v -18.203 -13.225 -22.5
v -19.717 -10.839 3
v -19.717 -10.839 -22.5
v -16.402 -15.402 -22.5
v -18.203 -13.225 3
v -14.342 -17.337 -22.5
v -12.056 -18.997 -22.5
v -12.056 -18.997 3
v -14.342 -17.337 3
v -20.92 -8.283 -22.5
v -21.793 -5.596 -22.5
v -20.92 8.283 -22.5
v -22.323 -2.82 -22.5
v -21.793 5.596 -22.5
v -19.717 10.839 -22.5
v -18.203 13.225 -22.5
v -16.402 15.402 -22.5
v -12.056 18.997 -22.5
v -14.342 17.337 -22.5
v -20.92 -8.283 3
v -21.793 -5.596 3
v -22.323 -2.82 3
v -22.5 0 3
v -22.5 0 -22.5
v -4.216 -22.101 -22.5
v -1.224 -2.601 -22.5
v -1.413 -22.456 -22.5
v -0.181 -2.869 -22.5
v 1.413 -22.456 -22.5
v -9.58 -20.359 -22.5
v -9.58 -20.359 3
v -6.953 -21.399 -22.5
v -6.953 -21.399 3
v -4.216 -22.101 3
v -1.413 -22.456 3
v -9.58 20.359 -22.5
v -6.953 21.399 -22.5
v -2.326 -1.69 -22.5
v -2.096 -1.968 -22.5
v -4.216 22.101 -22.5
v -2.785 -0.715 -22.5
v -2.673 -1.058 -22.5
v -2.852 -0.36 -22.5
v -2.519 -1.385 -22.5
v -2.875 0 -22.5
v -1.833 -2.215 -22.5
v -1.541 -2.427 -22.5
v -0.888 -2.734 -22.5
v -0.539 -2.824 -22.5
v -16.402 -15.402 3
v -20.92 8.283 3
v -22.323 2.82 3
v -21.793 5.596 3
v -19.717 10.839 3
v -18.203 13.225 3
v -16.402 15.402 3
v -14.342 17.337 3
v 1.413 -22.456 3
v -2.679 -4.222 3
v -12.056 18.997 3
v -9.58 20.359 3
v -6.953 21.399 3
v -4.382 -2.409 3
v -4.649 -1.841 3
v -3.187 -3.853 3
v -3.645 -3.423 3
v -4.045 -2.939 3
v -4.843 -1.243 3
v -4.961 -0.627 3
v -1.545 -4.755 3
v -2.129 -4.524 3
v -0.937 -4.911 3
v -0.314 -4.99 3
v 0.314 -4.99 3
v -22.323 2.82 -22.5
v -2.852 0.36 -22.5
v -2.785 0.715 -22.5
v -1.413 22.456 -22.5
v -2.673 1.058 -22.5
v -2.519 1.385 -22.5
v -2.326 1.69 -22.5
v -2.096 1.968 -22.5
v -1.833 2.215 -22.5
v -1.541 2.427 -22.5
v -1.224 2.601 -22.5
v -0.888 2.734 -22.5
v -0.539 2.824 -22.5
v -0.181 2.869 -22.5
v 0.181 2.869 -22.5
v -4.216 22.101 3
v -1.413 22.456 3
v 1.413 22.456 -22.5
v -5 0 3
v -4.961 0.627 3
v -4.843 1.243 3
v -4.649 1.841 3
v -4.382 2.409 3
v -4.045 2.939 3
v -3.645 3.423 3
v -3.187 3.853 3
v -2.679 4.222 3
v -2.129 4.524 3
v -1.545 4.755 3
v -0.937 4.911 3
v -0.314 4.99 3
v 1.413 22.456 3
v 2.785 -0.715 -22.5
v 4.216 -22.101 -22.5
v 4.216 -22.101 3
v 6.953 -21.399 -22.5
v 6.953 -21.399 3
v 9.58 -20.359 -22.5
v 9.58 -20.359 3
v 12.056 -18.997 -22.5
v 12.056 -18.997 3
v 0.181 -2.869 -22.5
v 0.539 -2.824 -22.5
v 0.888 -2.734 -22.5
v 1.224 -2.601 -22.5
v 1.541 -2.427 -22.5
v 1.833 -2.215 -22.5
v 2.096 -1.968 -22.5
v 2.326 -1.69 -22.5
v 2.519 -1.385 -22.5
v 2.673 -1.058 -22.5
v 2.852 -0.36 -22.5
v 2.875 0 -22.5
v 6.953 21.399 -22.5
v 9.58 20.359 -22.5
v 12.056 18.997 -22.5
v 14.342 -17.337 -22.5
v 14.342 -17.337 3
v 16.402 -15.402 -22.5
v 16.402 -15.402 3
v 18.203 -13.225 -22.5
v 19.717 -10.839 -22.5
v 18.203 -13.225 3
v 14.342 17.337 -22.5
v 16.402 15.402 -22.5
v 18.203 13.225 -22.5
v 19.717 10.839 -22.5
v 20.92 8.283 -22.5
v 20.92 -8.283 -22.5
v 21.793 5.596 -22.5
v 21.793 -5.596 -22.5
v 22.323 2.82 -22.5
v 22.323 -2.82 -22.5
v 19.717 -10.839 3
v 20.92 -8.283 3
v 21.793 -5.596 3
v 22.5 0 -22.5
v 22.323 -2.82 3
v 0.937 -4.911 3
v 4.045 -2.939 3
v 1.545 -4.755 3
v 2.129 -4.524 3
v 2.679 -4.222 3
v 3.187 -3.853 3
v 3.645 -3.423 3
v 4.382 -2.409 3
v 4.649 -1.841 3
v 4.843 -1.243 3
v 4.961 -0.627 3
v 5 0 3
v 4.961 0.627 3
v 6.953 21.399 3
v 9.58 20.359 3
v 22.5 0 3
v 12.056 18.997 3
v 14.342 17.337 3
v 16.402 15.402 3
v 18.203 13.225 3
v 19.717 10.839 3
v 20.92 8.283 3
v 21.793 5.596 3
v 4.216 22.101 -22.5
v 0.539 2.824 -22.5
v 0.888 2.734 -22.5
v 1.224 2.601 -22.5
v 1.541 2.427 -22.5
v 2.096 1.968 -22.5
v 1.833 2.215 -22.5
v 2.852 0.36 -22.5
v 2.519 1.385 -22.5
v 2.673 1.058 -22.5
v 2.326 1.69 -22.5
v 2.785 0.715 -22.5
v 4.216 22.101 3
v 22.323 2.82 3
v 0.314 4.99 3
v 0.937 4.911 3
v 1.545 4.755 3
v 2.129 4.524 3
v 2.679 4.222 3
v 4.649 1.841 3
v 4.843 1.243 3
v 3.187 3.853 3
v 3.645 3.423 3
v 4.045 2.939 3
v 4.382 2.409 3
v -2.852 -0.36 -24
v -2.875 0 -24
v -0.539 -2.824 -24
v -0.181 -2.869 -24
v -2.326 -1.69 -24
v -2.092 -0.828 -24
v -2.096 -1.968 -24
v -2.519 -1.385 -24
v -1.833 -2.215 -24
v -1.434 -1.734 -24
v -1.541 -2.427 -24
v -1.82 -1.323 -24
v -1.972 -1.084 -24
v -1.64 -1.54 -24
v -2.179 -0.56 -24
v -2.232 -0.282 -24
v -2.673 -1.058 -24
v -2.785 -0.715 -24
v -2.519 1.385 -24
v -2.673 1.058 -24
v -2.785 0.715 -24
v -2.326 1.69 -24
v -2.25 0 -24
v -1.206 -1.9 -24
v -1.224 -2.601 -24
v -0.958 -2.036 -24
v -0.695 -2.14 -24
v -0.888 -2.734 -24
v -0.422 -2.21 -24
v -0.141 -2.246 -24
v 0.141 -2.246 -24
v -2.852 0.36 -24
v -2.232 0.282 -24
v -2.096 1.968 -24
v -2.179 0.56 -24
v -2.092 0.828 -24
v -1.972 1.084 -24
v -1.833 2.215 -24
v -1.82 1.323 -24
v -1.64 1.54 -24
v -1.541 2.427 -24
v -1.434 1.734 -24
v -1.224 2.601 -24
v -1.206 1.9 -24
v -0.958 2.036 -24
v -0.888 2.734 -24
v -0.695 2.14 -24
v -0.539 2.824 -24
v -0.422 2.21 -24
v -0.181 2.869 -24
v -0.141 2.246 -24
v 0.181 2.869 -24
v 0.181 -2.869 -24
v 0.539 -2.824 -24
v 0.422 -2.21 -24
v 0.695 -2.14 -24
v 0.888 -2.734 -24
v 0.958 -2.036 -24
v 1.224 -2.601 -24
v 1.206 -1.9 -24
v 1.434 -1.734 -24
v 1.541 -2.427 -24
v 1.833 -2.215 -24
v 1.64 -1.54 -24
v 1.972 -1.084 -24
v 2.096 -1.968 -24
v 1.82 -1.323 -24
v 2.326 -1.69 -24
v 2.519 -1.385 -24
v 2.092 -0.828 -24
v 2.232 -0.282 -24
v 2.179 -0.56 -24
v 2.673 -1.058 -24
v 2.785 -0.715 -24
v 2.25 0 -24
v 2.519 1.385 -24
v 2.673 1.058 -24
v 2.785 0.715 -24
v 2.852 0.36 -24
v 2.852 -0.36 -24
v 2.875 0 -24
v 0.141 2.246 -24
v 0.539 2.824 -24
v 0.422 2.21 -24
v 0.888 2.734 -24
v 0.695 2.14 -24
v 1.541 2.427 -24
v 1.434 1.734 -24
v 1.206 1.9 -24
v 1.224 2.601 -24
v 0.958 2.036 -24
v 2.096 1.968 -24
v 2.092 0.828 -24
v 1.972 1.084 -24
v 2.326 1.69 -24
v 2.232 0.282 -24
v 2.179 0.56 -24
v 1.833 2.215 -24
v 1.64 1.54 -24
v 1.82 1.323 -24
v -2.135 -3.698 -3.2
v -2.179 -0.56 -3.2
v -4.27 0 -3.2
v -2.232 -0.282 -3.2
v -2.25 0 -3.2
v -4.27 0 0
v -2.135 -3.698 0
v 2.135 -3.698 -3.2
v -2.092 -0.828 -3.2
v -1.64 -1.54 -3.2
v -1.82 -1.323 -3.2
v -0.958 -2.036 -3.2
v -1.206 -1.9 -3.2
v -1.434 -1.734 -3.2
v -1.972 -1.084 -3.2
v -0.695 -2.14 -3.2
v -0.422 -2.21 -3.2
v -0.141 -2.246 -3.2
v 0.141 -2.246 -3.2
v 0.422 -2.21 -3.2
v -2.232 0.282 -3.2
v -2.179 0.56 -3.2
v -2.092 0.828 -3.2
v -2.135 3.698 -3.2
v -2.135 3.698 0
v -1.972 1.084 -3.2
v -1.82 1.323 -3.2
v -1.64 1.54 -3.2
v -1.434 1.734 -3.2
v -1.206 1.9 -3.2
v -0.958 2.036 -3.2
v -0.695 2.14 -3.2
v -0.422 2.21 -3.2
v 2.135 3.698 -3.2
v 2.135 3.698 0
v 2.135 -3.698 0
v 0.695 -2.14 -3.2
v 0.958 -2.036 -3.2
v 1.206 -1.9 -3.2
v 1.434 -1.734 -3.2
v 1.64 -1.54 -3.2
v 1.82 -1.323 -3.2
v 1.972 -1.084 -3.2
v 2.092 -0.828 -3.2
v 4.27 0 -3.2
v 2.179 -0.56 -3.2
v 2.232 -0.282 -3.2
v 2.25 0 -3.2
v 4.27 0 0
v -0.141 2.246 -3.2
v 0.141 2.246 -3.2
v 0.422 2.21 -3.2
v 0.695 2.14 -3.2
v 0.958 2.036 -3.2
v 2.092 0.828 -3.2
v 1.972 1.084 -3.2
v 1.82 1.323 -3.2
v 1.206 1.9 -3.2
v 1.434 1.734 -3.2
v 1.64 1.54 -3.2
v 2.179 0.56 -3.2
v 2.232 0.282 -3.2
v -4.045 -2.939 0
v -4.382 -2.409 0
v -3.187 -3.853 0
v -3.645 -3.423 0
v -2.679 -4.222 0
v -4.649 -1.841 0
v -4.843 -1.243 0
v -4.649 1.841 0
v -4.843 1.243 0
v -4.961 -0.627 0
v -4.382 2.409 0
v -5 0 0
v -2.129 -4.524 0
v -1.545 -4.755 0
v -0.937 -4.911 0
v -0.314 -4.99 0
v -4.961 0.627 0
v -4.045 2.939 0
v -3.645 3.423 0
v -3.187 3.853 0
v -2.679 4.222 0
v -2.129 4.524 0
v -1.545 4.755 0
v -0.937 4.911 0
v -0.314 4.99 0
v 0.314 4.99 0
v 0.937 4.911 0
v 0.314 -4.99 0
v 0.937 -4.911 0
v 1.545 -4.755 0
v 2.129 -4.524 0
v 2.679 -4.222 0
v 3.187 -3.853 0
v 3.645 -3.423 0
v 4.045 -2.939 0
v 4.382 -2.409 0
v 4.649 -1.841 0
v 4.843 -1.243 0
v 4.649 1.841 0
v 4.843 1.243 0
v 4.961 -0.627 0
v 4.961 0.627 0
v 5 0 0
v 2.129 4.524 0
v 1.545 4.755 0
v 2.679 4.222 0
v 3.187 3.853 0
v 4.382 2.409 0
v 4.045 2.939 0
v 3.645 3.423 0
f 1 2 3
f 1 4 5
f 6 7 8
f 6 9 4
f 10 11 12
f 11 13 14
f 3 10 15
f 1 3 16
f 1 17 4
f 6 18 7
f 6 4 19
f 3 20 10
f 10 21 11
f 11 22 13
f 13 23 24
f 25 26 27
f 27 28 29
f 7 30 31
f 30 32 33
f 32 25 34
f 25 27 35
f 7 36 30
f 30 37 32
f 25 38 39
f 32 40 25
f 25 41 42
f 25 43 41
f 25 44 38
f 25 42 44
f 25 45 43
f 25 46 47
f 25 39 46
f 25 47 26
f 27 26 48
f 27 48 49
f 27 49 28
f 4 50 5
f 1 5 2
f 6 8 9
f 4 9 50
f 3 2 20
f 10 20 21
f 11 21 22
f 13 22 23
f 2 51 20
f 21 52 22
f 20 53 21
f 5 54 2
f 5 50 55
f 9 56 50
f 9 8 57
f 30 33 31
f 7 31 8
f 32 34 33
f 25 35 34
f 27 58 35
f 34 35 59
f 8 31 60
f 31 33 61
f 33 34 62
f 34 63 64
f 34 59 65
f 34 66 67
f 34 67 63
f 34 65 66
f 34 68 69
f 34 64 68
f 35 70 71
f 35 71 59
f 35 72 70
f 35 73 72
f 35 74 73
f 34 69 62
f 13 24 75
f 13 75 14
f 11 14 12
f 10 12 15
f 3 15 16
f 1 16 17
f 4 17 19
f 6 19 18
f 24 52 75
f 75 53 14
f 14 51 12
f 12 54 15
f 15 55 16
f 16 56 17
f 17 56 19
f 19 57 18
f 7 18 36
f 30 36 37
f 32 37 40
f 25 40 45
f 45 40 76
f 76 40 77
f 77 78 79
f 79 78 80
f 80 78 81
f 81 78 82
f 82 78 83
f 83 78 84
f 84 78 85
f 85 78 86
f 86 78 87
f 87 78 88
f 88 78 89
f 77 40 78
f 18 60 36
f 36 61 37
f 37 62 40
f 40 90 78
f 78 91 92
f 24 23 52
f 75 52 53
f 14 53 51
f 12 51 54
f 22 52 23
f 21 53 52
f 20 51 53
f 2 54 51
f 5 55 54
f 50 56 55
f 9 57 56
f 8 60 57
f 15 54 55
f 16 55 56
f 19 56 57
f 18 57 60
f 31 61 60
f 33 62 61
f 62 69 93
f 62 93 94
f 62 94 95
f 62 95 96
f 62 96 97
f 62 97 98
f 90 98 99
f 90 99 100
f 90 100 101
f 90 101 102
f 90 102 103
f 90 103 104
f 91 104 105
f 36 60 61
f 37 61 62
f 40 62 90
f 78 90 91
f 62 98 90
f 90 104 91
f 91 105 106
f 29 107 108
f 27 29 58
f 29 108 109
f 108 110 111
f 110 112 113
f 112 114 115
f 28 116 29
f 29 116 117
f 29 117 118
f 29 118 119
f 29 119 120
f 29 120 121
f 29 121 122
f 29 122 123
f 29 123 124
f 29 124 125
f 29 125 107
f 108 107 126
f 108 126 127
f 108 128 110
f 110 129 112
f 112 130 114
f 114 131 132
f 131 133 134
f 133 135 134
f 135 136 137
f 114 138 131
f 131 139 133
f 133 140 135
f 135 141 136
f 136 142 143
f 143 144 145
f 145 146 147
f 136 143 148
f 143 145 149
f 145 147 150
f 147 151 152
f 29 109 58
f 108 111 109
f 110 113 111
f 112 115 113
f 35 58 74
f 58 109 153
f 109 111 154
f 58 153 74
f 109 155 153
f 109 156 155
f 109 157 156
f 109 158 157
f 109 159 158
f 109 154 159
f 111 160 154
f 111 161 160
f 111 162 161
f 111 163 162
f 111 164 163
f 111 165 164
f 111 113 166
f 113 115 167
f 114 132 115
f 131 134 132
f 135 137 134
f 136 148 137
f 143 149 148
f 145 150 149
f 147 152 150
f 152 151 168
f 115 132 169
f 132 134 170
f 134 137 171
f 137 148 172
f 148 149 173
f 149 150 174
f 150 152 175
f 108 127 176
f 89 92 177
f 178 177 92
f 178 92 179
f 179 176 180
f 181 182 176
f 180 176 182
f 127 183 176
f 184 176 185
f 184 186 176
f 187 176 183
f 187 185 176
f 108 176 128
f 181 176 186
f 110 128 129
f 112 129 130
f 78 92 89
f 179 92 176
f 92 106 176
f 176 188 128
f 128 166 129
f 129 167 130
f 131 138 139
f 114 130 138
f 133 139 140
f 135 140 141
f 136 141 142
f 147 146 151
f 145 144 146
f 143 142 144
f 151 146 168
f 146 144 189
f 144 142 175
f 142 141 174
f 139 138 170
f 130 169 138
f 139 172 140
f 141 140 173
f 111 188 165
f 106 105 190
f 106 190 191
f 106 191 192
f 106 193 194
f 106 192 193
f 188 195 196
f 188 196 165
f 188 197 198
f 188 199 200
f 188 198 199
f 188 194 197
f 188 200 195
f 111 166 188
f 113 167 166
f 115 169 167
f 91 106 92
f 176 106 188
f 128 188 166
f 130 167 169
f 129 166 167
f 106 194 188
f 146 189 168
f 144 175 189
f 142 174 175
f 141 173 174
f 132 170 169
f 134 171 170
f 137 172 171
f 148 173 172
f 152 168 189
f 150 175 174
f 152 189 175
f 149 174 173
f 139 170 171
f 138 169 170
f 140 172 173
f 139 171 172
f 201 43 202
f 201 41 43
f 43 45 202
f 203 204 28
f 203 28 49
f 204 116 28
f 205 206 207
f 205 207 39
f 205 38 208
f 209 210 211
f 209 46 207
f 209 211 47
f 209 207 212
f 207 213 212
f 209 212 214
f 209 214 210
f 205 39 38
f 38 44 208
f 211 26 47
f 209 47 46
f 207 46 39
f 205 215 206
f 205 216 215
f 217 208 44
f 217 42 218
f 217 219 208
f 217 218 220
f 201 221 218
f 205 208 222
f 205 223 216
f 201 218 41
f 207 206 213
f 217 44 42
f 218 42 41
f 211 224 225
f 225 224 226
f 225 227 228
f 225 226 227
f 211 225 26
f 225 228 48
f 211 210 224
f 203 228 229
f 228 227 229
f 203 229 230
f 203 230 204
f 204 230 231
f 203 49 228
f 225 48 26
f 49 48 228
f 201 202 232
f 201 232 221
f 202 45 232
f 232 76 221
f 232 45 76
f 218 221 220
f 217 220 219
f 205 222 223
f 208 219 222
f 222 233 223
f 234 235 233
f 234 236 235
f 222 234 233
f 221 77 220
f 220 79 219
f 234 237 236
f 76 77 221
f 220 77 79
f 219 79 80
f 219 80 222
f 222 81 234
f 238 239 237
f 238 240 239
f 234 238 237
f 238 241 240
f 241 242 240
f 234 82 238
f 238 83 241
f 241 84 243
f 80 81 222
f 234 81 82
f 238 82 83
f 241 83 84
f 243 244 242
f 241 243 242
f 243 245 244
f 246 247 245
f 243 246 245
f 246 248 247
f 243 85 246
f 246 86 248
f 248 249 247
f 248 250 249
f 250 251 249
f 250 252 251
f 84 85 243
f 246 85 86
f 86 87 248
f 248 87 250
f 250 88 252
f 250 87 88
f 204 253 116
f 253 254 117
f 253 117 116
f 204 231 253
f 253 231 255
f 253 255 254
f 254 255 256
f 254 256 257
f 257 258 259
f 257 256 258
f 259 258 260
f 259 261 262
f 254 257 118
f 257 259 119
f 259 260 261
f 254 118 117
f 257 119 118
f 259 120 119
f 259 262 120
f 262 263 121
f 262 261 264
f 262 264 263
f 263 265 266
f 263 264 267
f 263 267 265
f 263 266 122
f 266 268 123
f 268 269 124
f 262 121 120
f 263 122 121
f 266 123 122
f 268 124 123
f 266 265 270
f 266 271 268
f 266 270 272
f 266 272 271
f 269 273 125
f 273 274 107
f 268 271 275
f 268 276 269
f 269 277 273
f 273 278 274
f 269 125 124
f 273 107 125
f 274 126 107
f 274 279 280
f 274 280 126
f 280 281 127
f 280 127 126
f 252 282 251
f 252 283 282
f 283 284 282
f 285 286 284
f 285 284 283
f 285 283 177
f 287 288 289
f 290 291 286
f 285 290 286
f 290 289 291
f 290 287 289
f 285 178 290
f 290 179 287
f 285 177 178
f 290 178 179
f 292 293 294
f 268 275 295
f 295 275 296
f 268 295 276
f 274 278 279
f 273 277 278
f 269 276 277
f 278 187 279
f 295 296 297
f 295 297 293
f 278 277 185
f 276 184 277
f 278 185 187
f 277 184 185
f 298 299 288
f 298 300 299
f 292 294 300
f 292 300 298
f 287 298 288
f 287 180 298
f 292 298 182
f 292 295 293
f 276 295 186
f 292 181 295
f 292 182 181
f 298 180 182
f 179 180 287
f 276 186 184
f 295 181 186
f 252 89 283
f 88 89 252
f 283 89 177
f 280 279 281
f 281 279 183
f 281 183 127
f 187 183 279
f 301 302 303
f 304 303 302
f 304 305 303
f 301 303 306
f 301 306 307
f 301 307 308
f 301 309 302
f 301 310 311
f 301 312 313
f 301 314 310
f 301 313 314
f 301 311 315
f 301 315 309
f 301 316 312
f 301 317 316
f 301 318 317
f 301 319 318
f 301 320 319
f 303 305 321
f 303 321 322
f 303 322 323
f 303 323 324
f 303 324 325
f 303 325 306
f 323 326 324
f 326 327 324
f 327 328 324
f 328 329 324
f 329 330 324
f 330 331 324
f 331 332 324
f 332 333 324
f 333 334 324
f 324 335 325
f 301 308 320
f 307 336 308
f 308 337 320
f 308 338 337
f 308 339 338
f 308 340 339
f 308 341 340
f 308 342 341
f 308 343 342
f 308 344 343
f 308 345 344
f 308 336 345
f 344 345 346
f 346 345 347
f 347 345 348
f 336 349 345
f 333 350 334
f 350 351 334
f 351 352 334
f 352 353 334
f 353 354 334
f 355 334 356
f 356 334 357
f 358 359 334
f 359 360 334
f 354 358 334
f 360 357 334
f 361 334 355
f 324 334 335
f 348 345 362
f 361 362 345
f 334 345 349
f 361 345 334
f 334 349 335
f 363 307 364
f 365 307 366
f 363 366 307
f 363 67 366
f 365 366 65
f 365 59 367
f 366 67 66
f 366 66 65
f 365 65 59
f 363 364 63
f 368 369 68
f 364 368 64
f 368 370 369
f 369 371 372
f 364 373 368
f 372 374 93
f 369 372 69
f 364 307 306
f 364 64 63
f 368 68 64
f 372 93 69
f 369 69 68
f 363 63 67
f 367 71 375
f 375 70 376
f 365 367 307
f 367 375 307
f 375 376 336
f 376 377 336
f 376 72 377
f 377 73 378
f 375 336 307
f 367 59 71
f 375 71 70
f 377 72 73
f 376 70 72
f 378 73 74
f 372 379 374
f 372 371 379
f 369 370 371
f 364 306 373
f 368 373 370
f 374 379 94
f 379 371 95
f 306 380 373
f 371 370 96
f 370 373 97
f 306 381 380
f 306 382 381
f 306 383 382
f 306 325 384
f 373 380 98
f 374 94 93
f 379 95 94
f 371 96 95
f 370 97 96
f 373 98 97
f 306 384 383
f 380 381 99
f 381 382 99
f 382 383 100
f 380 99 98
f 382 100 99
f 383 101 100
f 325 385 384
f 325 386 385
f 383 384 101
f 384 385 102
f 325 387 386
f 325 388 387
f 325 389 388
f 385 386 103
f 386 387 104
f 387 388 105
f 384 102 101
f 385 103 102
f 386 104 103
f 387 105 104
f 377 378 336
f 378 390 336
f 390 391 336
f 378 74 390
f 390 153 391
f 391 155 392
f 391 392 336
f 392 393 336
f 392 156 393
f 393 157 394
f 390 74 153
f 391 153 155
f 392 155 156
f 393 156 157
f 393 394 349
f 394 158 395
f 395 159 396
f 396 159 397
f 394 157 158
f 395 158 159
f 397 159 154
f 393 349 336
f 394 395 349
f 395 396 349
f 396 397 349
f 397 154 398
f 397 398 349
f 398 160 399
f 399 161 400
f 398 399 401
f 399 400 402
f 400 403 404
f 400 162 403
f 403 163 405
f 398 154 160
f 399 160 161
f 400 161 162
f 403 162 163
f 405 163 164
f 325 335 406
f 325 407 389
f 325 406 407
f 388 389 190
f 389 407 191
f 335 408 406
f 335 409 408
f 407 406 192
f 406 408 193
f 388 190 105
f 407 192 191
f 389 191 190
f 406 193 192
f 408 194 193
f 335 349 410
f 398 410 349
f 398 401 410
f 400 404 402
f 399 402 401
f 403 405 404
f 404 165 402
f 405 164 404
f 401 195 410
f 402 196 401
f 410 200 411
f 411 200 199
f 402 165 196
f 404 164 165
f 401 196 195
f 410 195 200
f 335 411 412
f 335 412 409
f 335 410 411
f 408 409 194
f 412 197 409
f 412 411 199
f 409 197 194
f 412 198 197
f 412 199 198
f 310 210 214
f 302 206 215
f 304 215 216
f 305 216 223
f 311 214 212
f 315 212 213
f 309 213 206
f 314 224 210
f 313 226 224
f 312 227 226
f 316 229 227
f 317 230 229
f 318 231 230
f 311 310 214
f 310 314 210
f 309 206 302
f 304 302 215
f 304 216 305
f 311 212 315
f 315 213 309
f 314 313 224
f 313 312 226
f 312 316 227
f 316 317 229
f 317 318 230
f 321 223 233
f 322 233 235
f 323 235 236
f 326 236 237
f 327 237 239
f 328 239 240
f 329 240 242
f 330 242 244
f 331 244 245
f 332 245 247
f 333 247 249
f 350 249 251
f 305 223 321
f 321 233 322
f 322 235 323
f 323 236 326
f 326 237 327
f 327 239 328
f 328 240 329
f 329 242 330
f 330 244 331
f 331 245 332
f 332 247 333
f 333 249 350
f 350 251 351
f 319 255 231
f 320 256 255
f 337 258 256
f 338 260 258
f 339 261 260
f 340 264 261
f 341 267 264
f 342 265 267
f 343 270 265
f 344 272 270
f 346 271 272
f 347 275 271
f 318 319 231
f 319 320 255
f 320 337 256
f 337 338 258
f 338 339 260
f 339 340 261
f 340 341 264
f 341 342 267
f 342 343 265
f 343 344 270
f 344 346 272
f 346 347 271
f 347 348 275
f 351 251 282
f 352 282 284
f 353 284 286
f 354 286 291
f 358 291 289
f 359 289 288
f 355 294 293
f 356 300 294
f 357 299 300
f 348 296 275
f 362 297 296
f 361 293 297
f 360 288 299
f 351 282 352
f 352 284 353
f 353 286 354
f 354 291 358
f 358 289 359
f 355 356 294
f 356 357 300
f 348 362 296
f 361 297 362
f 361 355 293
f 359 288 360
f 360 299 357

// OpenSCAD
$fn = 50;


difference() {
	union() {
		translate(v = [0, 0, -22.5000000000]) {
			cylinder(h = 25.5000000000, r = 22.5000000000);
		}
		#translate(v = [0, 0, -24.0000000000]) {
			cylinder(h = 24, r = 2.8750000000);
		}
	}
	union() {
		translate(v = [0, 0, 0]) {
			rotate(a = [0, 0, 0]) {
				difference() {
					union() {
						translate(v = [0, 0, -3.2000000000]) {
							linear_extrude(height = 3.2000000000) {
								polygon(points = [[4.2698000000, 0.0000000000], [2.1349000000, 3.6977552691], [-2.1349000000, 3.6977552691], [-4.2698000000, 0.0000000000], [-2.1349000000, -3.6977552691], [2.1349000000, -3.6977552691]]);
							}
						}
					}
					union();
				}
			}
		}
		#cylinder(h = 3, r = 5.0000000000);
		#translate(v = [0, 0, -100.0000000000]) {
			cylinder(h = 200, r = 2.2500000000);
		}
	}
}
